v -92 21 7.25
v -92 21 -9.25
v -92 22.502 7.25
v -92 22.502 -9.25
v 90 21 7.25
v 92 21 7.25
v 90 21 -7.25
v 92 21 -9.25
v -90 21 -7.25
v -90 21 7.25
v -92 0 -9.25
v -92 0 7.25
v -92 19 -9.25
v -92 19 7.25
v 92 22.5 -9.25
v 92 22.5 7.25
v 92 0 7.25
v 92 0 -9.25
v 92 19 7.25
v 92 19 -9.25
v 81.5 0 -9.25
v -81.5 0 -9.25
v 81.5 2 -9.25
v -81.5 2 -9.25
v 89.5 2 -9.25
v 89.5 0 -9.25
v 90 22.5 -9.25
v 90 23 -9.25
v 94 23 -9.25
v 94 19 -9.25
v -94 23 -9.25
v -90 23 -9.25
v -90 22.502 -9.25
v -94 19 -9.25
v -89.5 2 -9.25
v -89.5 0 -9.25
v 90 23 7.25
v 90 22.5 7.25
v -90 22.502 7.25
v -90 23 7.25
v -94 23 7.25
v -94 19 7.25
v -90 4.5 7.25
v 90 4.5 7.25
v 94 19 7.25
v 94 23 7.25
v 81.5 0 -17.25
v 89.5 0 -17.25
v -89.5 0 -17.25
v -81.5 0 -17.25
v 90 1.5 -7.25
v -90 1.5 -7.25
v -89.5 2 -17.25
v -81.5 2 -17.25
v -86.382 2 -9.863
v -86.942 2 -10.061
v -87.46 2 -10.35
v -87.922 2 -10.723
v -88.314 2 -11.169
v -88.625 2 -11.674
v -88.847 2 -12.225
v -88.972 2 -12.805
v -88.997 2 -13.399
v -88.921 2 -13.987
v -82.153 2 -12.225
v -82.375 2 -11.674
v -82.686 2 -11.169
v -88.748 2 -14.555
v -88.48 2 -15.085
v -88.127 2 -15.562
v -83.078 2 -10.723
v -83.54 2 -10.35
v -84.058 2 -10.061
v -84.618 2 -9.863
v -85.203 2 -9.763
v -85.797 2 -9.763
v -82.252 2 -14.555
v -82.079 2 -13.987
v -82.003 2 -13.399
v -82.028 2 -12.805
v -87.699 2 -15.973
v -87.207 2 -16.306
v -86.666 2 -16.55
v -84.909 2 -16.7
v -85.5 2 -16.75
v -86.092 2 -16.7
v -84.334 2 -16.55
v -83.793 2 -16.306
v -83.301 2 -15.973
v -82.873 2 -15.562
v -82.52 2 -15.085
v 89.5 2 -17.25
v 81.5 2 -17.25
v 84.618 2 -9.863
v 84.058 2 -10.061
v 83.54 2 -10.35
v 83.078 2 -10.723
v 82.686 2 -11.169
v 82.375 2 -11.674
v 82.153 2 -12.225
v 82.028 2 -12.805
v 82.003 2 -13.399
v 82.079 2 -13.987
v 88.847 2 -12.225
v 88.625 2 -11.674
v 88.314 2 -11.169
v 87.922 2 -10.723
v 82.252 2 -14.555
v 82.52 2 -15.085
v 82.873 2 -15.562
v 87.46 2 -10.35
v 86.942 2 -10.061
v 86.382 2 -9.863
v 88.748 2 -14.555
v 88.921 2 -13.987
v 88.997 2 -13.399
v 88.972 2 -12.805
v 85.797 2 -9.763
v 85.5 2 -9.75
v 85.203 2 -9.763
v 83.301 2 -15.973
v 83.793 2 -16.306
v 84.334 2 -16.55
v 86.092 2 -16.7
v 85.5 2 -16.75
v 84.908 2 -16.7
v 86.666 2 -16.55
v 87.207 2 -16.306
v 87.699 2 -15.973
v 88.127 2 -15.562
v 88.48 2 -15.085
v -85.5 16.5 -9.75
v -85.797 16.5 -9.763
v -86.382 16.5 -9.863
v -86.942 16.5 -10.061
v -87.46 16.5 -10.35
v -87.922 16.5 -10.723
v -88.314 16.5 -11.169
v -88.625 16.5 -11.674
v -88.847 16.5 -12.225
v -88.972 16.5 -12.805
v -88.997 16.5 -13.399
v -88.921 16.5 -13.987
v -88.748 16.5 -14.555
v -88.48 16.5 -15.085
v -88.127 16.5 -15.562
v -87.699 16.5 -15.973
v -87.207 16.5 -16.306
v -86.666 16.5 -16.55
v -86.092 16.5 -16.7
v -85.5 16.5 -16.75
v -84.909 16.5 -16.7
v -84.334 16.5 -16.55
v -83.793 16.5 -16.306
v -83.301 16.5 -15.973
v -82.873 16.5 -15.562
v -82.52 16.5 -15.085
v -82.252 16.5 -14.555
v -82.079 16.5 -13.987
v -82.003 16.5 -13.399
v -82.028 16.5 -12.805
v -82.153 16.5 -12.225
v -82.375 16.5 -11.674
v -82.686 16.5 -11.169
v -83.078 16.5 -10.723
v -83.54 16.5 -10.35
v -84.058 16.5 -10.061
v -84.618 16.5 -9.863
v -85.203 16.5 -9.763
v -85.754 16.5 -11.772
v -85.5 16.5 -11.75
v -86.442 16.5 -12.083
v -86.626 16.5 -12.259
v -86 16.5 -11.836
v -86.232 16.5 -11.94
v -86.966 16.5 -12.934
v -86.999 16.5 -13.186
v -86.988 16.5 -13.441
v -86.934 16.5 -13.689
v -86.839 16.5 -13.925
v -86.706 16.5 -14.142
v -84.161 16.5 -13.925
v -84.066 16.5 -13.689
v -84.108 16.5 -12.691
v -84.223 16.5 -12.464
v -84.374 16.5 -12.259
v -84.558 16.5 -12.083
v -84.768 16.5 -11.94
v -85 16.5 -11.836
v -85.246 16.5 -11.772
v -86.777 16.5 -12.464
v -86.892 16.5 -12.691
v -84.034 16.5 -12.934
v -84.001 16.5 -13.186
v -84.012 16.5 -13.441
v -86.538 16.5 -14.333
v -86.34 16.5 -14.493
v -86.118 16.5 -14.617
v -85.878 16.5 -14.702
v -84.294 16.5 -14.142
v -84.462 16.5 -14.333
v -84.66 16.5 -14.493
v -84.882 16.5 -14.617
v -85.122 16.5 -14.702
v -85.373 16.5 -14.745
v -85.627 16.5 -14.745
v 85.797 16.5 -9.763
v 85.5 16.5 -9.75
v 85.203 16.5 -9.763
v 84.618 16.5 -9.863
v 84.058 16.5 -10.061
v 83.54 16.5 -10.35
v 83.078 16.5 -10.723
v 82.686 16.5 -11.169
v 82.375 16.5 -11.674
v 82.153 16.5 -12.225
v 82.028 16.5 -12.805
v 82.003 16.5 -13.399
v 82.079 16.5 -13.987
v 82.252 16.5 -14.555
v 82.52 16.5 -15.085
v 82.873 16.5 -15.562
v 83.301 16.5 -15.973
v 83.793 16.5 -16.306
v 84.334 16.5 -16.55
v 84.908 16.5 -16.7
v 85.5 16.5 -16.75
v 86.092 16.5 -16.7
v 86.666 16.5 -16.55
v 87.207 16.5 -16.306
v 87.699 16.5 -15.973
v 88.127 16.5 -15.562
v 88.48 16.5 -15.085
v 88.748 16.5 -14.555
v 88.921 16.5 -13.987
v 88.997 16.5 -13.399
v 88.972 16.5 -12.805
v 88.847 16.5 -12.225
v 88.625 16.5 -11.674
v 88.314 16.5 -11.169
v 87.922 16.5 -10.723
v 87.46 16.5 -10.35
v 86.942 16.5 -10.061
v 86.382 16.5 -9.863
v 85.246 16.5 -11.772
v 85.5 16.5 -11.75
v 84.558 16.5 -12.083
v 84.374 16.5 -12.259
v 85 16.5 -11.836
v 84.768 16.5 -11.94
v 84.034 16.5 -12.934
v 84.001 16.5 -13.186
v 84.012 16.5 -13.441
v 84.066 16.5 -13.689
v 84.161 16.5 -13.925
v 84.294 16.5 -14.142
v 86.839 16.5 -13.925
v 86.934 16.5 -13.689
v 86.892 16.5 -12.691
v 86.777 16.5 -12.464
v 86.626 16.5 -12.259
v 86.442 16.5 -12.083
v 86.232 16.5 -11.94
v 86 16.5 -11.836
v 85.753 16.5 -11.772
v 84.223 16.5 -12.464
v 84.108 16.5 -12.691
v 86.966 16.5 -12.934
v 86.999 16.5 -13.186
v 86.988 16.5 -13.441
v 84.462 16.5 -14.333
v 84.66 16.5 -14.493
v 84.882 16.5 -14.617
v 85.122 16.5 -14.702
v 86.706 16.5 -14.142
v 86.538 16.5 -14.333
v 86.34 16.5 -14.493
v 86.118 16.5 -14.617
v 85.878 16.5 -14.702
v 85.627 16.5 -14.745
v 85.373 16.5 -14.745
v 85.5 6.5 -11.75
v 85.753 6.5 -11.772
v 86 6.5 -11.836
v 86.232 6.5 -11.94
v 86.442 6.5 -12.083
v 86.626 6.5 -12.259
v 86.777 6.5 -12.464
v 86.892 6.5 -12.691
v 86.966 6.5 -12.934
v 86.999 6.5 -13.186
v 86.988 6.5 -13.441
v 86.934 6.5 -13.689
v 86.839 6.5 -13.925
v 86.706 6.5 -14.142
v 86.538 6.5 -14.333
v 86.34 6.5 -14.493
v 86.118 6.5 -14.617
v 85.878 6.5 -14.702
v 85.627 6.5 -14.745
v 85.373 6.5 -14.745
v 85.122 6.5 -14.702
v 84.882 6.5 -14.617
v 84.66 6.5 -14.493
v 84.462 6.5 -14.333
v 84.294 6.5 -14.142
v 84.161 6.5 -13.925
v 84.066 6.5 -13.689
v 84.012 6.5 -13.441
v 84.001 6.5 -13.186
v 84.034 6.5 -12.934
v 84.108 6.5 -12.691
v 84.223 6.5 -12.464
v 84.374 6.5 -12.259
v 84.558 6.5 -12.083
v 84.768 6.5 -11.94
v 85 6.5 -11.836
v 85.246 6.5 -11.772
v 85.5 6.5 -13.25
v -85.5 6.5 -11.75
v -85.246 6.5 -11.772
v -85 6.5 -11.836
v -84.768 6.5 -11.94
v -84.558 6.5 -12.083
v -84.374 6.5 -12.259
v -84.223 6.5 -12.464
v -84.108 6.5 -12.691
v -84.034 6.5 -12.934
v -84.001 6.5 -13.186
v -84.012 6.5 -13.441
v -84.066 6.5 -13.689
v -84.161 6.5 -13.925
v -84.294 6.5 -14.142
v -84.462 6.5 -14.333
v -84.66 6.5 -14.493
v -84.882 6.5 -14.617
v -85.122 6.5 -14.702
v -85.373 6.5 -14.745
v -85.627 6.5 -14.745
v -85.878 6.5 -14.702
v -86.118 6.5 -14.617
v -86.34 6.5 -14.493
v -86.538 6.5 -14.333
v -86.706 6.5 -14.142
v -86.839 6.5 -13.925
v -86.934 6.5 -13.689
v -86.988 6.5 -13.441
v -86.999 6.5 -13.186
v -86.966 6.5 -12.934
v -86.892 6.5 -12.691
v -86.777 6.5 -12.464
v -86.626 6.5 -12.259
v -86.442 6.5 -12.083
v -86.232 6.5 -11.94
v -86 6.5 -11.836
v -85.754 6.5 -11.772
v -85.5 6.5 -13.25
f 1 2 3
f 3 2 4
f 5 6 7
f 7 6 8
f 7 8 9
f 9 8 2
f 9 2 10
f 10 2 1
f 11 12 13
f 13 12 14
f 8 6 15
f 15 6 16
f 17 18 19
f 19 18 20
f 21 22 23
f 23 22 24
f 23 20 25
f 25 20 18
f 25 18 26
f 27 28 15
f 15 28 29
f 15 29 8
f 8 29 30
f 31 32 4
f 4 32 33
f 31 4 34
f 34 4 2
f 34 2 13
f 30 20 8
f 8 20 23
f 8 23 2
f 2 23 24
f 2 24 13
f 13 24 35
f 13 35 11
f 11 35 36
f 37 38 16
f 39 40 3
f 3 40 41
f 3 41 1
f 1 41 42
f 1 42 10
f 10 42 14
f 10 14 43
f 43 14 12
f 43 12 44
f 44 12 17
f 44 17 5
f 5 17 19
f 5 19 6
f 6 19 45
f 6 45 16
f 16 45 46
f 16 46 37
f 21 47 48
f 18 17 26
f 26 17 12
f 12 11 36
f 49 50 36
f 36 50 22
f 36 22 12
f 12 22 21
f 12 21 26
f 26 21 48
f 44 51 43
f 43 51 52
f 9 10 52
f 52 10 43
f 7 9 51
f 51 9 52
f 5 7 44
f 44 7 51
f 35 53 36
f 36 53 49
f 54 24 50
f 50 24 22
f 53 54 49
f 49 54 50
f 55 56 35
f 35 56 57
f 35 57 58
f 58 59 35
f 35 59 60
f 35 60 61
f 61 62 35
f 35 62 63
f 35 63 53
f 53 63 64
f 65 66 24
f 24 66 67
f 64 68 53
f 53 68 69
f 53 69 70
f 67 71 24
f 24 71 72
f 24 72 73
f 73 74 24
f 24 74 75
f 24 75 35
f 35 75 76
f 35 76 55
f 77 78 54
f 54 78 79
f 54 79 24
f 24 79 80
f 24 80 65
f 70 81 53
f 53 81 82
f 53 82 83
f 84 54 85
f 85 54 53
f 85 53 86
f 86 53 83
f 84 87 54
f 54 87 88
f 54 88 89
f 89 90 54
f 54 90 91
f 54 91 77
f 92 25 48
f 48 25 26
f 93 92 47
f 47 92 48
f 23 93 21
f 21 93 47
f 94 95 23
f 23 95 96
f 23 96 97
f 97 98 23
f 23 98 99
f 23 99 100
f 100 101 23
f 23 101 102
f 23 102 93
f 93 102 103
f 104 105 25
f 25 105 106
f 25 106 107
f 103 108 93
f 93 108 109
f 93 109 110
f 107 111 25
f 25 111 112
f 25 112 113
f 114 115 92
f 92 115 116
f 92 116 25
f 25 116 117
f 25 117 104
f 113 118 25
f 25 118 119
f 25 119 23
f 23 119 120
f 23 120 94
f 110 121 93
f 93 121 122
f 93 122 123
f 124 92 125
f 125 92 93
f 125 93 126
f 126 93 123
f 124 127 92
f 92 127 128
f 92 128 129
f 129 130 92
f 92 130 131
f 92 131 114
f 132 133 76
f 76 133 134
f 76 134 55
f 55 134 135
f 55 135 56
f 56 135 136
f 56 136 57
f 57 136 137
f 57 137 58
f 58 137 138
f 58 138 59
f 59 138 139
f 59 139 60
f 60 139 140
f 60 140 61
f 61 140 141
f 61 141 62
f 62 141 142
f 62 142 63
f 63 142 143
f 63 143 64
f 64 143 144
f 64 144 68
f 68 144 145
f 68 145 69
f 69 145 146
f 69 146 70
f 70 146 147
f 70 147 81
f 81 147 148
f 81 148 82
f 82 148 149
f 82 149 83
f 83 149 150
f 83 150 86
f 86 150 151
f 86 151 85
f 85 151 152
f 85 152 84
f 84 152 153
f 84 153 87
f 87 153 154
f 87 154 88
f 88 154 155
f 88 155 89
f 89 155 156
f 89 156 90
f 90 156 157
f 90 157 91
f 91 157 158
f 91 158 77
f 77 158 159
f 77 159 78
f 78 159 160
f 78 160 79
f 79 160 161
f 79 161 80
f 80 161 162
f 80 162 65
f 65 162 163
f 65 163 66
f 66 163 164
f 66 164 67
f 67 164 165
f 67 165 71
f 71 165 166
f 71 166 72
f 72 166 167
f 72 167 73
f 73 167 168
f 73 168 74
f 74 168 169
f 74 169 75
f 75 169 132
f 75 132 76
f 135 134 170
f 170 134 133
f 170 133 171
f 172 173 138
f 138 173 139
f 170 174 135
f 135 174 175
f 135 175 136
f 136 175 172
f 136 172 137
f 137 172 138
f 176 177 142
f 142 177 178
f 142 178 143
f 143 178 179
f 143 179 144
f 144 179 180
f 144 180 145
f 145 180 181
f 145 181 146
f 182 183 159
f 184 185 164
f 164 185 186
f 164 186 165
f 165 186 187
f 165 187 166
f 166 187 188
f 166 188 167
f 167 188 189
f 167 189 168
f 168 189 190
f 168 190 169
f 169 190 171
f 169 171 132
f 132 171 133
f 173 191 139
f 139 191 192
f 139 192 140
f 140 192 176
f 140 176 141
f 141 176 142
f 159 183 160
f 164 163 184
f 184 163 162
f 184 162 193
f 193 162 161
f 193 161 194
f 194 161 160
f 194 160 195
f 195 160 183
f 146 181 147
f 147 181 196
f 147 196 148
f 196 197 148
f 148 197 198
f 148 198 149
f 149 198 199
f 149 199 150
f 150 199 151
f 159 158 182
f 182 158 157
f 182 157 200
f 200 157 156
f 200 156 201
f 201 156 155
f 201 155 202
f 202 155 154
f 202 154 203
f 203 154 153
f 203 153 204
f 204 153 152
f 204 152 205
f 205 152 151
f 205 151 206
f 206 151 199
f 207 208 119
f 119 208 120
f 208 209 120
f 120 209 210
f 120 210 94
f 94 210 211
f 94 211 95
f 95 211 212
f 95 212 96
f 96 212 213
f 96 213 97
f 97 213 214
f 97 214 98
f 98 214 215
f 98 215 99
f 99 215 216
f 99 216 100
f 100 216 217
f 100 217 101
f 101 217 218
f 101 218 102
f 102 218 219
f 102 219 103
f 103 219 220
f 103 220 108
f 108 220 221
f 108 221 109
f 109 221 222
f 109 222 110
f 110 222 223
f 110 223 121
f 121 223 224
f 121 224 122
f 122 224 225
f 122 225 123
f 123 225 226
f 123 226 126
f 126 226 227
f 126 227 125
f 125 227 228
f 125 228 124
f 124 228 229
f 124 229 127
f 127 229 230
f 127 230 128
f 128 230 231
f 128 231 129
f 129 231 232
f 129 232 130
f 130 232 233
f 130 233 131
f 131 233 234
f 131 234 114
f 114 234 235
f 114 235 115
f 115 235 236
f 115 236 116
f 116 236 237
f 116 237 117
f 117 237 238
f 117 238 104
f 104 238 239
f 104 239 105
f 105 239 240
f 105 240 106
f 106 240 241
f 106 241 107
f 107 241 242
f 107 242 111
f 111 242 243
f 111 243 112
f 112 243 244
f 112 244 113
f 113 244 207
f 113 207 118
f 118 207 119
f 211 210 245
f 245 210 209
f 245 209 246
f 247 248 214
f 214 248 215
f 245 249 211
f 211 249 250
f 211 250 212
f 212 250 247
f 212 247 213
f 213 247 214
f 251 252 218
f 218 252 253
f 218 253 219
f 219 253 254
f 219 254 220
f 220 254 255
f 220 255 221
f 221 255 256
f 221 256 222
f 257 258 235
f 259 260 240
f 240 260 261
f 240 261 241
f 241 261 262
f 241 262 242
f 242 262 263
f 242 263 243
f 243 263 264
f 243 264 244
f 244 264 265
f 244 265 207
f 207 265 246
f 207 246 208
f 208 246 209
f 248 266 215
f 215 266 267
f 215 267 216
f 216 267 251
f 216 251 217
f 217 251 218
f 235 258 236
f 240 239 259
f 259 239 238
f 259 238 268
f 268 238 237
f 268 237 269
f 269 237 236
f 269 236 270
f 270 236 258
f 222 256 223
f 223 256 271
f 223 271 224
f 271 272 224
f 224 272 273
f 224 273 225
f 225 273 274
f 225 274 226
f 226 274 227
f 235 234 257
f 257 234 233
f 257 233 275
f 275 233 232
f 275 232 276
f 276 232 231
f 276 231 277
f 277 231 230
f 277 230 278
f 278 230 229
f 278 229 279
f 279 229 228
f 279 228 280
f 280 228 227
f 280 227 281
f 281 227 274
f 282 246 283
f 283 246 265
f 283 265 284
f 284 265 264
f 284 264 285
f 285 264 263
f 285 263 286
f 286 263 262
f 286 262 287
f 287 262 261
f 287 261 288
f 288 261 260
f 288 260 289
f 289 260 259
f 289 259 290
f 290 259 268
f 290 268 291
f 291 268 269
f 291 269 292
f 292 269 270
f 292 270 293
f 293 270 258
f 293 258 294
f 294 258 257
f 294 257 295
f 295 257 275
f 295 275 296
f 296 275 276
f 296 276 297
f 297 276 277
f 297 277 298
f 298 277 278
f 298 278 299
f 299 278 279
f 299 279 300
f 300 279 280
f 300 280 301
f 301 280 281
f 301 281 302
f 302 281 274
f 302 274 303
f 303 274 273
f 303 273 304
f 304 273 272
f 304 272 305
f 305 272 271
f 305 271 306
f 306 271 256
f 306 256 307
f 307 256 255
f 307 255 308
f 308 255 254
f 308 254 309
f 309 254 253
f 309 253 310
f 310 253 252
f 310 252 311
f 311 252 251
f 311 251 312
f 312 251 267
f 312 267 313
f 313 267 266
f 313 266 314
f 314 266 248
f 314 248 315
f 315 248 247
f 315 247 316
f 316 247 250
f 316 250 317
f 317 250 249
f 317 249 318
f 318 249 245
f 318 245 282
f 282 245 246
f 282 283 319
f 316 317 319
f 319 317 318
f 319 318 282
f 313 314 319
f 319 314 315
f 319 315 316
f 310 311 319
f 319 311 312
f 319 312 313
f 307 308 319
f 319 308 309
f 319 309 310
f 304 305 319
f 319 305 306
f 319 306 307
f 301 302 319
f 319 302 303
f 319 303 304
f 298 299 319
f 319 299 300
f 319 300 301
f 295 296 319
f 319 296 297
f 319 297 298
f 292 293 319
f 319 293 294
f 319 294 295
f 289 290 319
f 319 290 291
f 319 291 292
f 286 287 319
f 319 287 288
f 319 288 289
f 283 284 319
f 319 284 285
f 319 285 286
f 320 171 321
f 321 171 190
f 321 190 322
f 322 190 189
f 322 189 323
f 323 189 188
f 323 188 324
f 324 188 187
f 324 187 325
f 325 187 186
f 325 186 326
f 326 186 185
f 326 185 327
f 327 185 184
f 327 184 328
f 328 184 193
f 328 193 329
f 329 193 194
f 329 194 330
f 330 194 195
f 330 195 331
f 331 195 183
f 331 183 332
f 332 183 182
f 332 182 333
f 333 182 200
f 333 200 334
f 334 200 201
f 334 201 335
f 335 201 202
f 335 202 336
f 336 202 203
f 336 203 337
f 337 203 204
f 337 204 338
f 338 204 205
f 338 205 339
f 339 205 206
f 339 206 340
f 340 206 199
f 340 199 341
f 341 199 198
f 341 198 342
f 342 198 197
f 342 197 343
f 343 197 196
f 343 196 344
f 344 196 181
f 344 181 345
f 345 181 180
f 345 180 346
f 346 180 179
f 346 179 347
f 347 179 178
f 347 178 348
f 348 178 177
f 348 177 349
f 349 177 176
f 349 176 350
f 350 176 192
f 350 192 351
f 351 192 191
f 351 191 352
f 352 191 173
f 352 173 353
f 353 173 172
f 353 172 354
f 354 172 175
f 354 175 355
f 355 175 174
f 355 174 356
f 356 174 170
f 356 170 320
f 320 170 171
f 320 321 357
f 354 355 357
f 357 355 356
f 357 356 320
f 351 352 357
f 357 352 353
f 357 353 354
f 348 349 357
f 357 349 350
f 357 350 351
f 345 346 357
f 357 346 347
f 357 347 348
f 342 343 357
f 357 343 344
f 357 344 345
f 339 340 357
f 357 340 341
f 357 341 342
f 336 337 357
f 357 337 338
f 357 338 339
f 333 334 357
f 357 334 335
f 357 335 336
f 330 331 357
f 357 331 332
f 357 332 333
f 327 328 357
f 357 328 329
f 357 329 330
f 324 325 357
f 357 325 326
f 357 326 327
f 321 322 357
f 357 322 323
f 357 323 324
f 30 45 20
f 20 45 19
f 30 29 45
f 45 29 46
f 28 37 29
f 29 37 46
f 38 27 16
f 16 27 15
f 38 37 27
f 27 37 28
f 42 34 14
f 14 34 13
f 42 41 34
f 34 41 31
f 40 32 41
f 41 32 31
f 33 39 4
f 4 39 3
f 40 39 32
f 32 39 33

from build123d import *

# Parameters (mm, degrees)
SKIZZE1_W                        = 180
SKIZZE1_H                        = 14.5
AUFSATZ_LINEAR_AUSTRAGEN1_DEPTH  = 4.5
SCHNITT_LINEAR_AUSTRAGEN2_DEPTH  = 181.202143439
SKIZZE4_W                        = 180
SKIZZE4_H                        = 2
AUFSATZ_LINEAR_AUSTRAGEN2_DEPTH  = 21
SKIZZE5_W                        = 8
SKIZZE5_H                        = 8
AUFSATZ_LINEAR_AUSTRAGEN3_DEPTH  = 2
SKIZZE6_R                        = 3.5
AUFSATZ_LINEAR_AUSTRAGEN4_DEPTH  = 14.5
SKIZZE7_R                        = 1.5
SCHNITT_LINEAR_AUSTRAGEN3_DEPTH  = 10
SKIZZE8_W                        = 16.5
SKIZZE8_H                        = 2
AUFSATZ_LINEAR_AUSTRAGEN5_DEPTH  = 2
SKIZZE9_W                        = 2
SKIZZE9_H                        = 16.5
AUFSATZ_LINEAR_AUSTRAGEN6_DEPTH  = 2
SKIZZE10_W                       = 16.5
SKIZZE10_H                       = 0.5
AUFSATZ_LINEAR_AUSTRAGEN7_DEPTH  = 2
SKIZZE11_W                       = 16.5
SKIZZE11_H                       = 2
AUFSATZ_LINEAR_AUSTRAGEN8_DEPTH  = 2
SKIZZE12_W                       = 2
SKIZZE12_H                       = 16.5
AUFSATZ_LINEAR_AUSTRAGEN9_DEPTH  = 2
SKIZZE13_W                       = 16.5
SKIZZE13_H                       = 0.498323608
AUFSATZ_LINEAR_AUSTRAGEN10_DEPTH = 2


with BuildPart() as part:
    # Skizze1 → Aufsatz-Linear austragen1 (new body)
    with BuildSketch(Plane(origin=(0, 0, 0), x_dir=(1, 0, 0), z_dir=(0, 1, 0))):
        Rectangle(SKIZZE1_W, SKIZZE1_H)
    extrude(amount=AUFSATZ_LINEAR_AUSTRAGEN1_DEPTH)

    # Skizze2 → Schnitt-Linear austragen2 (cut, through all)
    with BuildSketch(Plane.ZY.offset(90)):
        Polygon((-7.25, 4.5), (-7.25, 1.5), (7.25, 4.5), align=None)
    extrude(amount=-SCHNITT_LINEAR_AUSTRAGEN2_DEPTH, mode=Mode.SUBTRACT)

    # Skizze4 → Aufsatz-Linear austragen2 (add)
    with BuildSketch(Plane(origin=(0, 0, 0), x_dir=(1, 0, 0), z_dir=(0, 1, 0))):
        with Locations((0, 8.25)):
            Rectangle(SKIZZE4_W, SKIZZE4_H)
        Polygon((90, 9.25), (90, 7.25), (90, -7.25), (92, -7.25), (92, 9.25), align=None)
        Polygon((-90, -7.25), (-90, 7.25), (-90, 9.25), (-92, 9.25), (-92, -7.25), align=None)
    extrude(amount=AUFSATZ_LINEAR_AUSTRAGEN2_DEPTH)

    # Skizze5 → Aufsatz-Linear austragen3 (add)
    with BuildSketch(Plane(origin=(0, 0, 0), x_dir=(1, 0, 0), z_dir=(0, 1, 0))):
        with Locations((-85.5, 13.25)):
            Rectangle(SKIZZE5_W, SKIZZE5_H)
        with Locations((85.5, 13.25)):
            Rectangle(SKIZZE5_W, SKIZZE5_H)
    extrude(amount=AUFSATZ_LINEAR_AUSTRAGEN3_DEPTH)

    # Skizze6 → Aufsatz-Linear austragen4 (add)
    with BuildSketch(Plane(origin=(0, 2, 0), x_dir=(1, 0, 0), z_dir=(0, 1, 0))):
        with Locations(Location((-85.5, 13.25, 0), (0, 0, 90))):
            Circle(SKIZZE6_R)
        with Locations(Location((85.5, 13.25, 0), (0, 0, 90))):
            Circle(SKIZZE6_R)
    extrude(amount=AUFSATZ_LINEAR_AUSTRAGEN4_DEPTH)

    # Skizze7 → Schnitt-Linear austragen3 (cut)
    with BuildSketch(Plane(origin=(0, 16.5, 0), x_dir=(1, 0, 0), z_dir=(0, 1, 0))):
        with Locations(Location((85.5, 13.25, 0), (0, 0, 270))):
            Circle(SKIZZE7_R)
        with Locations(Location((-85.5, 13.25, 0), (0, 0, 270))):
            Circle(SKIZZE7_R)
    extrude(amount=-SCHNITT_LINEAR_AUSTRAGEN3_DEPTH, mode=Mode.SUBTRACT)

    # Skizze8 → Aufsatz-Linear austragen5 (add)
    with BuildSketch(Plane(origin=(92, 0, 0), x_dir=(0, 0, -1), z_dir=(1, 0, 0))):
        with Locations((1, 20)):
            Rectangle(SKIZZE8_W, SKIZZE8_H)
    extrude(amount=AUFSATZ_LINEAR_AUSTRAGEN5_DEPTH)

    # Skizze9 → Aufsatz-Linear austragen6 (add)
    with BuildSketch(Plane(origin=(0, 21, 0), x_dir=(1, 0, 0), z_dir=(0, 1, 0))):
        with Locations((93, 1)):
            Rectangle(SKIZZE9_W, SKIZZE9_H)
    extrude(amount=AUFSATZ_LINEAR_AUSTRAGEN6_DEPTH)

    # Skizze10 → Aufsatz-Linear austragen7 (add)
    with BuildSketch(Plane.ZY.offset(-92)):
        with Locations((-1, 22.75)):
            Rectangle(SKIZZE10_W, SKIZZE10_H)
    extrude(amount=AUFSATZ_LINEAR_AUSTRAGEN7_DEPTH)

    # Skizze11 → Aufsatz-Linear austragen8 (add)
    with BuildSketch(Plane.ZY.offset(92)):
        with Locations((-1, 20)):
            Rectangle(SKIZZE11_W, SKIZZE11_H)
    extrude(amount=AUFSATZ_LINEAR_AUSTRAGEN8_DEPTH)

    # Skizze12 → Aufsatz-Linear austragen9 (add)
    with BuildSketch(Plane(origin=(0, 21, 0), x_dir=(1, 0, 0), z_dir=(0, 1, 0))):
        with Locations((-93, 1)):
            Rectangle(SKIZZE12_W, SKIZZE12_H)
    extrude(amount=AUFSATZ_LINEAR_AUSTRAGEN9_DEPTH)

    # Skizze13 → Aufsatz-Linear austragen10 (add)
    with BuildSketch(Plane(origin=(-92, 0, 0), x_dir=(0, 0, -1), z_dir=(1, 0, 0))):
        with Locations((1, 22.750838196)):
            Rectangle(SKIZZE13_W, SKIZZE13_H)
    extrude(amount=AUFSATZ_LINEAR_AUSTRAGEN10_DEPTH)


solid = part.part
